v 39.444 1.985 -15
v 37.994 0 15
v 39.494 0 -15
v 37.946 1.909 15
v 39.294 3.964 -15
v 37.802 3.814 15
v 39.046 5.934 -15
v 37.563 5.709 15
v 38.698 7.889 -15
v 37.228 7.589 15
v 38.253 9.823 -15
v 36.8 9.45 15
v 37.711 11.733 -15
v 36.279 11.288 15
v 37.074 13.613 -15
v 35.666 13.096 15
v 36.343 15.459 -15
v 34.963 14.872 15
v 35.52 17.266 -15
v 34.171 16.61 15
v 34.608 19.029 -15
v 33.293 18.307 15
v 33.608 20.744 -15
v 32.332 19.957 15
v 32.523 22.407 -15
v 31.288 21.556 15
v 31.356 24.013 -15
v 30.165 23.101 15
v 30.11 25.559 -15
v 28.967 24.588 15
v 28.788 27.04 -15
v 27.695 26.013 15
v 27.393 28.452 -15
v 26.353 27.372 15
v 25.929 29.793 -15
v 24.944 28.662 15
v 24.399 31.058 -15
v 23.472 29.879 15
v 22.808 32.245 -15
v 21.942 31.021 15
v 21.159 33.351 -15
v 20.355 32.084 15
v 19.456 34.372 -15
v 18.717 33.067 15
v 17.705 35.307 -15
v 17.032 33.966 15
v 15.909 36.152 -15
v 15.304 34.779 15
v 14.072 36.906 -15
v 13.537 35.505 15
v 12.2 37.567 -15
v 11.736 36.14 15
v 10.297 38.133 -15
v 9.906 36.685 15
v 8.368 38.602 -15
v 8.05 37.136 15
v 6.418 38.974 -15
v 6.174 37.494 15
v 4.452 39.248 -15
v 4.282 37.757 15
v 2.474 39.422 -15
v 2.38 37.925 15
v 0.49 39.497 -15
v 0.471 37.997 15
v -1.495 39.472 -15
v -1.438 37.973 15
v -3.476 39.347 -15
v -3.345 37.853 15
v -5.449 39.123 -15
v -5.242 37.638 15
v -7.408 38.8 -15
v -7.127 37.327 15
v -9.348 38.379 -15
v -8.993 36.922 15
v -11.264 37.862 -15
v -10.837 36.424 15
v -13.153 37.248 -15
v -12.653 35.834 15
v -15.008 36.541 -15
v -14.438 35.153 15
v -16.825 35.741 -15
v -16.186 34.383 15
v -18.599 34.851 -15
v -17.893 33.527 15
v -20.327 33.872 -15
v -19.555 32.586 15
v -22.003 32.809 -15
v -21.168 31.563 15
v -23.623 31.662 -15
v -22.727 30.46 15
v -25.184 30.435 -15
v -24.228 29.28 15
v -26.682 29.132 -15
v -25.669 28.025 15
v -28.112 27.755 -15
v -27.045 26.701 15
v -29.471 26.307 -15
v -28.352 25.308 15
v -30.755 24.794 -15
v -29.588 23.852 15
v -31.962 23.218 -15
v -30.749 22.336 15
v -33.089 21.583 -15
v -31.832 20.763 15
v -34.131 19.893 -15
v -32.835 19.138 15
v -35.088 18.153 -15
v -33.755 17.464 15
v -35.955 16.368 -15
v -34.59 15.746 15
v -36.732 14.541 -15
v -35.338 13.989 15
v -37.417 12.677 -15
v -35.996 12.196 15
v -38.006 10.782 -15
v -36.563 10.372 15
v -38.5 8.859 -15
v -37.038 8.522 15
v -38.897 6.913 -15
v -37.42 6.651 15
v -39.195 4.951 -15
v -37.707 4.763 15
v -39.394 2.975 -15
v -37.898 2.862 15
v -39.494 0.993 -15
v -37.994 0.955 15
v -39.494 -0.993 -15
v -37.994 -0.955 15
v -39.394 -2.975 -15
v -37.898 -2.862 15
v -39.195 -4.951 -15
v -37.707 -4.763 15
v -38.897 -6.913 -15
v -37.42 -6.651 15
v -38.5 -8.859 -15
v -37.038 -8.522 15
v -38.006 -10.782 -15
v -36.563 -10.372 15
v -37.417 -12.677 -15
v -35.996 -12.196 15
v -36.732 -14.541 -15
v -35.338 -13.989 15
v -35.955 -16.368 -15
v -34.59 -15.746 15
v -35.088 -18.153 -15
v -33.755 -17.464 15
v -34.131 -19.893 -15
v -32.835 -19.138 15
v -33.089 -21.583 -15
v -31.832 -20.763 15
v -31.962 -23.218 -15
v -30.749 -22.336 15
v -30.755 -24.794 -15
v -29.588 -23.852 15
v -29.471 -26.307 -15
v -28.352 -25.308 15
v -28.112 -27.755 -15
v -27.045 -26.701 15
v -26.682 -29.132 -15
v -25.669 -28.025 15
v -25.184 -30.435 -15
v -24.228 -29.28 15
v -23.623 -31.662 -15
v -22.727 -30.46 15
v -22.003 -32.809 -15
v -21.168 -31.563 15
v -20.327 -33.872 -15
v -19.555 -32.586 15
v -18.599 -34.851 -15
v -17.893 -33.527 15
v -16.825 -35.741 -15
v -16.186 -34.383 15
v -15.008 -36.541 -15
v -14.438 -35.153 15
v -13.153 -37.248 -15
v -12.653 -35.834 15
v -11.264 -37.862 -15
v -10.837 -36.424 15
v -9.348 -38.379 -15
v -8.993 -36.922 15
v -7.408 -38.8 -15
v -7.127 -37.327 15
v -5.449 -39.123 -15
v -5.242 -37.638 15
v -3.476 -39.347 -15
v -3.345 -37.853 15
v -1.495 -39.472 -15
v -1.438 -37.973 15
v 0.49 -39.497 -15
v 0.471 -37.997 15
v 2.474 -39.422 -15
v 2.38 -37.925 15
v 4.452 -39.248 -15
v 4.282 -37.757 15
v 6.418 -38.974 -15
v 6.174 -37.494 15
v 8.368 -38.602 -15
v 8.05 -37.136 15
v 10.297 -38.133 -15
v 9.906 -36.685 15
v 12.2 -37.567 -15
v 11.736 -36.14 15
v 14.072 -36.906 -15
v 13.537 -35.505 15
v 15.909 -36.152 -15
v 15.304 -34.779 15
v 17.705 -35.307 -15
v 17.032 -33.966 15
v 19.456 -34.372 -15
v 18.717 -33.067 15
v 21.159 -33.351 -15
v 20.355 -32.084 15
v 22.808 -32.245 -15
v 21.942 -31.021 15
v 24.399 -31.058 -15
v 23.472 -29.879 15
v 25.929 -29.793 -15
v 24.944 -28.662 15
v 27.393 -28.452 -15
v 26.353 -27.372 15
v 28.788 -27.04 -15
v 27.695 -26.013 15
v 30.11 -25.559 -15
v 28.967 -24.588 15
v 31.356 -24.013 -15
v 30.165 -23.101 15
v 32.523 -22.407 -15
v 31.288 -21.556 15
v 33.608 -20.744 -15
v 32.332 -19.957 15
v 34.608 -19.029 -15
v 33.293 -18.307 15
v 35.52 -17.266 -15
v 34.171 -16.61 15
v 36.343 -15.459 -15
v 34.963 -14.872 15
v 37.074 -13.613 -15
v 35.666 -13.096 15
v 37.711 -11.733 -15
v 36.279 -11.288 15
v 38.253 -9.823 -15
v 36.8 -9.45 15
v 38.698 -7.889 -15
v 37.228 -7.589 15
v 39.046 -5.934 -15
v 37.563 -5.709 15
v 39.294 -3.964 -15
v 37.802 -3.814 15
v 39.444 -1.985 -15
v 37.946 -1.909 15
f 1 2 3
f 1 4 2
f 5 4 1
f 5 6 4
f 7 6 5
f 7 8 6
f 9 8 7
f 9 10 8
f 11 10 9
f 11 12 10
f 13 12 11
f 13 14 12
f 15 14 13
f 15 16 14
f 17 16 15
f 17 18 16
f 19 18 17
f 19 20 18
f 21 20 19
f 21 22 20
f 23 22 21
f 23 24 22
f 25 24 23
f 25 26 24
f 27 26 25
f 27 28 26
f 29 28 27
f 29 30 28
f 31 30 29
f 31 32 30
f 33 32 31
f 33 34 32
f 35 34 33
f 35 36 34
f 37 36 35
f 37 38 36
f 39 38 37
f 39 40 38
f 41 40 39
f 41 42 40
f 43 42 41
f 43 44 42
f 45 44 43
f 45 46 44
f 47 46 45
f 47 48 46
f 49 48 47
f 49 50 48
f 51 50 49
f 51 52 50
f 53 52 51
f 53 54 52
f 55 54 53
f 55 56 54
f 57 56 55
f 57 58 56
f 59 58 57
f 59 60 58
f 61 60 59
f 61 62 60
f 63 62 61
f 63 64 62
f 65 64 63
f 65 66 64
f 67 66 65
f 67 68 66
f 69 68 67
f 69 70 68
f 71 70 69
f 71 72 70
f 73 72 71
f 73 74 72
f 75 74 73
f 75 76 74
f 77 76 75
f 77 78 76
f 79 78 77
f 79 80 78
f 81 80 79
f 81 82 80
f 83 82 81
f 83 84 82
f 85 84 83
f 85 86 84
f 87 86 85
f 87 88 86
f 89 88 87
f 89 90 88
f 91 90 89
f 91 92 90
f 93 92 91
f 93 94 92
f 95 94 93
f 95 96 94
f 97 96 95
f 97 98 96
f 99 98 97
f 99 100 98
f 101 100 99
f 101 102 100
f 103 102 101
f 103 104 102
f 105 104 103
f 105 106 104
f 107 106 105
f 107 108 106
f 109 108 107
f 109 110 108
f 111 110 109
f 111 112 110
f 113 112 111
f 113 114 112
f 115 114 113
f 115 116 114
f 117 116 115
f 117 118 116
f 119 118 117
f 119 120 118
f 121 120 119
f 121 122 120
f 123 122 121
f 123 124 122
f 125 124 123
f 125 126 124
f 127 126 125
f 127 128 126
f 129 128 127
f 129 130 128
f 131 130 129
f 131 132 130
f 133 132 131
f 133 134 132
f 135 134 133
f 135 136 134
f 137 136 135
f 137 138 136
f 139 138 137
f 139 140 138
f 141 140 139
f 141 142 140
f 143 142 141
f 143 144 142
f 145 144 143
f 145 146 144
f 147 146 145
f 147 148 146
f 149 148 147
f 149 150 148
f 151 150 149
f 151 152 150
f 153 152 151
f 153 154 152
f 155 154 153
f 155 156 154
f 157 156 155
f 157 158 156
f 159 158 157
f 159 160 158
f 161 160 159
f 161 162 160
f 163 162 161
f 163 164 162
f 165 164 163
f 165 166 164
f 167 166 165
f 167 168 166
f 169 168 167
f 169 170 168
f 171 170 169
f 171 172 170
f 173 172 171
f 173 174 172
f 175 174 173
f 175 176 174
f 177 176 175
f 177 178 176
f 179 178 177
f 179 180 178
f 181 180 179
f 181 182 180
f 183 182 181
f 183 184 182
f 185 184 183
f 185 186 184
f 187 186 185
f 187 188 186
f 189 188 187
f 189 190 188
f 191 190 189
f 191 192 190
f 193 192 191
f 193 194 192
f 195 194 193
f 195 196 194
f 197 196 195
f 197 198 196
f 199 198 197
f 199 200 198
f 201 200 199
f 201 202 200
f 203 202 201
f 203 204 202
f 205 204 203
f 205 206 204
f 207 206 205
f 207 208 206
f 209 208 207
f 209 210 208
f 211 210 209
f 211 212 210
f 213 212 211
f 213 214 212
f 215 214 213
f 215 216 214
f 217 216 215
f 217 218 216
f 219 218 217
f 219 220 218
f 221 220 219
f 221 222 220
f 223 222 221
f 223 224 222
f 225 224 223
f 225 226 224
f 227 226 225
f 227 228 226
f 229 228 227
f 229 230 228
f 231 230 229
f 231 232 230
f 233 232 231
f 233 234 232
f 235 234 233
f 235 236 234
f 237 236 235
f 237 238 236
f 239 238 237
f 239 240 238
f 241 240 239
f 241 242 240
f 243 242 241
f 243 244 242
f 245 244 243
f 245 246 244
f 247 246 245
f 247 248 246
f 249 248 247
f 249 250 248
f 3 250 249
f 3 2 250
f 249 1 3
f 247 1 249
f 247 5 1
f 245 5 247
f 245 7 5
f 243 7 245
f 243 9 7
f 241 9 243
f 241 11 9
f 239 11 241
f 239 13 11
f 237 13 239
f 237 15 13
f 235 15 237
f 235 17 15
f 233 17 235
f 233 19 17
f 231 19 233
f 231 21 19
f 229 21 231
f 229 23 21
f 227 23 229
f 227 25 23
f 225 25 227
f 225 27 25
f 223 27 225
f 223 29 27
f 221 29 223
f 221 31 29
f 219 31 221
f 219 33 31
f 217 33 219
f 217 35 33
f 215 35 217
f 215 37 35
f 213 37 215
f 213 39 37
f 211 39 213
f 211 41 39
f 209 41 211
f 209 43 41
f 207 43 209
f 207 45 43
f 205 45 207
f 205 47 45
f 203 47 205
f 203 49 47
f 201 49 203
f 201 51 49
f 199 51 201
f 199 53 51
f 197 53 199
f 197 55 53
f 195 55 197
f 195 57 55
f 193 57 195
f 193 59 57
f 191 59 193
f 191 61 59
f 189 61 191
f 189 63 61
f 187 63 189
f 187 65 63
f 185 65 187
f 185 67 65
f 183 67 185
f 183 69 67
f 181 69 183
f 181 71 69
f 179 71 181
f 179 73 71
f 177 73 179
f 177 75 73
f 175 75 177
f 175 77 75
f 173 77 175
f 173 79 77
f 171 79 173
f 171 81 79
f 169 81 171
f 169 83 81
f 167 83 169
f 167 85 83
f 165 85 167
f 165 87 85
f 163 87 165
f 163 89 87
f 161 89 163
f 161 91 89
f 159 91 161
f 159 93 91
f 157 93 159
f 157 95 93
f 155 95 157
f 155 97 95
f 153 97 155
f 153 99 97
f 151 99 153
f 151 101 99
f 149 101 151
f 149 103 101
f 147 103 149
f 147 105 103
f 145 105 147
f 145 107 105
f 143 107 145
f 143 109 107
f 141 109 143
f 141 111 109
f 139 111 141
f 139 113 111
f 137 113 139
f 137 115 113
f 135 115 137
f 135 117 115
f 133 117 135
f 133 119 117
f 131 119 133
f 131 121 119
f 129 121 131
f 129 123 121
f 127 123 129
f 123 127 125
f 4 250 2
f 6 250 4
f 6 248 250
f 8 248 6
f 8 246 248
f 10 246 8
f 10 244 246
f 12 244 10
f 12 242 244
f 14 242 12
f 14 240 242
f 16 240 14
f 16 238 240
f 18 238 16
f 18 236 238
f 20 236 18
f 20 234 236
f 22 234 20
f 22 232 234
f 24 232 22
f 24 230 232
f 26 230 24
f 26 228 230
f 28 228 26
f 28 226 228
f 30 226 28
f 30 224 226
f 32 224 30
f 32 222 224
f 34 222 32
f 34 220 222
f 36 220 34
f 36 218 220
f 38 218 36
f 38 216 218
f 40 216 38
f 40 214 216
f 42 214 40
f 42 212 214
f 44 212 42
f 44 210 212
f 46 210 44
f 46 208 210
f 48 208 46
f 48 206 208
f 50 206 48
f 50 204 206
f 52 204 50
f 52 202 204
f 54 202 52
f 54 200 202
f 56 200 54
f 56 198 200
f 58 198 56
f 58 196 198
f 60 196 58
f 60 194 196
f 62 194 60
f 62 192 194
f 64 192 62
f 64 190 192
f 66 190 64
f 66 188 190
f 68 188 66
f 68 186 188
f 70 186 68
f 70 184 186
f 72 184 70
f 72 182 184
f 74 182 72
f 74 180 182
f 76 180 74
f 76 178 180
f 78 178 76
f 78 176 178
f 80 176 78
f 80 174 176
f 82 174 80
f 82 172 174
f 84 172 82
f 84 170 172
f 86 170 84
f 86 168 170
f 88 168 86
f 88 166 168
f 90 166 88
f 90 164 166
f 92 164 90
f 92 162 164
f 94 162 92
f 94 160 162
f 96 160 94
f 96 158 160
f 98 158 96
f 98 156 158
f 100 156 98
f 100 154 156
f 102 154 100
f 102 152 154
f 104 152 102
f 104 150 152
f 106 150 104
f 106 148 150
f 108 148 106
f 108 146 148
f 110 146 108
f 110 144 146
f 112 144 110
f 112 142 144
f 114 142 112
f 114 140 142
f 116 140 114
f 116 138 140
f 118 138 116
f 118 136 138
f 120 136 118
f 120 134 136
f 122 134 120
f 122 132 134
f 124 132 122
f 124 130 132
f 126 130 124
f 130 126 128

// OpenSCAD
top = 76;
bottom = 79;
height = 30;

$fa = 1;

cylinder(h=height,d1=bottom,d2=top,center=true);
